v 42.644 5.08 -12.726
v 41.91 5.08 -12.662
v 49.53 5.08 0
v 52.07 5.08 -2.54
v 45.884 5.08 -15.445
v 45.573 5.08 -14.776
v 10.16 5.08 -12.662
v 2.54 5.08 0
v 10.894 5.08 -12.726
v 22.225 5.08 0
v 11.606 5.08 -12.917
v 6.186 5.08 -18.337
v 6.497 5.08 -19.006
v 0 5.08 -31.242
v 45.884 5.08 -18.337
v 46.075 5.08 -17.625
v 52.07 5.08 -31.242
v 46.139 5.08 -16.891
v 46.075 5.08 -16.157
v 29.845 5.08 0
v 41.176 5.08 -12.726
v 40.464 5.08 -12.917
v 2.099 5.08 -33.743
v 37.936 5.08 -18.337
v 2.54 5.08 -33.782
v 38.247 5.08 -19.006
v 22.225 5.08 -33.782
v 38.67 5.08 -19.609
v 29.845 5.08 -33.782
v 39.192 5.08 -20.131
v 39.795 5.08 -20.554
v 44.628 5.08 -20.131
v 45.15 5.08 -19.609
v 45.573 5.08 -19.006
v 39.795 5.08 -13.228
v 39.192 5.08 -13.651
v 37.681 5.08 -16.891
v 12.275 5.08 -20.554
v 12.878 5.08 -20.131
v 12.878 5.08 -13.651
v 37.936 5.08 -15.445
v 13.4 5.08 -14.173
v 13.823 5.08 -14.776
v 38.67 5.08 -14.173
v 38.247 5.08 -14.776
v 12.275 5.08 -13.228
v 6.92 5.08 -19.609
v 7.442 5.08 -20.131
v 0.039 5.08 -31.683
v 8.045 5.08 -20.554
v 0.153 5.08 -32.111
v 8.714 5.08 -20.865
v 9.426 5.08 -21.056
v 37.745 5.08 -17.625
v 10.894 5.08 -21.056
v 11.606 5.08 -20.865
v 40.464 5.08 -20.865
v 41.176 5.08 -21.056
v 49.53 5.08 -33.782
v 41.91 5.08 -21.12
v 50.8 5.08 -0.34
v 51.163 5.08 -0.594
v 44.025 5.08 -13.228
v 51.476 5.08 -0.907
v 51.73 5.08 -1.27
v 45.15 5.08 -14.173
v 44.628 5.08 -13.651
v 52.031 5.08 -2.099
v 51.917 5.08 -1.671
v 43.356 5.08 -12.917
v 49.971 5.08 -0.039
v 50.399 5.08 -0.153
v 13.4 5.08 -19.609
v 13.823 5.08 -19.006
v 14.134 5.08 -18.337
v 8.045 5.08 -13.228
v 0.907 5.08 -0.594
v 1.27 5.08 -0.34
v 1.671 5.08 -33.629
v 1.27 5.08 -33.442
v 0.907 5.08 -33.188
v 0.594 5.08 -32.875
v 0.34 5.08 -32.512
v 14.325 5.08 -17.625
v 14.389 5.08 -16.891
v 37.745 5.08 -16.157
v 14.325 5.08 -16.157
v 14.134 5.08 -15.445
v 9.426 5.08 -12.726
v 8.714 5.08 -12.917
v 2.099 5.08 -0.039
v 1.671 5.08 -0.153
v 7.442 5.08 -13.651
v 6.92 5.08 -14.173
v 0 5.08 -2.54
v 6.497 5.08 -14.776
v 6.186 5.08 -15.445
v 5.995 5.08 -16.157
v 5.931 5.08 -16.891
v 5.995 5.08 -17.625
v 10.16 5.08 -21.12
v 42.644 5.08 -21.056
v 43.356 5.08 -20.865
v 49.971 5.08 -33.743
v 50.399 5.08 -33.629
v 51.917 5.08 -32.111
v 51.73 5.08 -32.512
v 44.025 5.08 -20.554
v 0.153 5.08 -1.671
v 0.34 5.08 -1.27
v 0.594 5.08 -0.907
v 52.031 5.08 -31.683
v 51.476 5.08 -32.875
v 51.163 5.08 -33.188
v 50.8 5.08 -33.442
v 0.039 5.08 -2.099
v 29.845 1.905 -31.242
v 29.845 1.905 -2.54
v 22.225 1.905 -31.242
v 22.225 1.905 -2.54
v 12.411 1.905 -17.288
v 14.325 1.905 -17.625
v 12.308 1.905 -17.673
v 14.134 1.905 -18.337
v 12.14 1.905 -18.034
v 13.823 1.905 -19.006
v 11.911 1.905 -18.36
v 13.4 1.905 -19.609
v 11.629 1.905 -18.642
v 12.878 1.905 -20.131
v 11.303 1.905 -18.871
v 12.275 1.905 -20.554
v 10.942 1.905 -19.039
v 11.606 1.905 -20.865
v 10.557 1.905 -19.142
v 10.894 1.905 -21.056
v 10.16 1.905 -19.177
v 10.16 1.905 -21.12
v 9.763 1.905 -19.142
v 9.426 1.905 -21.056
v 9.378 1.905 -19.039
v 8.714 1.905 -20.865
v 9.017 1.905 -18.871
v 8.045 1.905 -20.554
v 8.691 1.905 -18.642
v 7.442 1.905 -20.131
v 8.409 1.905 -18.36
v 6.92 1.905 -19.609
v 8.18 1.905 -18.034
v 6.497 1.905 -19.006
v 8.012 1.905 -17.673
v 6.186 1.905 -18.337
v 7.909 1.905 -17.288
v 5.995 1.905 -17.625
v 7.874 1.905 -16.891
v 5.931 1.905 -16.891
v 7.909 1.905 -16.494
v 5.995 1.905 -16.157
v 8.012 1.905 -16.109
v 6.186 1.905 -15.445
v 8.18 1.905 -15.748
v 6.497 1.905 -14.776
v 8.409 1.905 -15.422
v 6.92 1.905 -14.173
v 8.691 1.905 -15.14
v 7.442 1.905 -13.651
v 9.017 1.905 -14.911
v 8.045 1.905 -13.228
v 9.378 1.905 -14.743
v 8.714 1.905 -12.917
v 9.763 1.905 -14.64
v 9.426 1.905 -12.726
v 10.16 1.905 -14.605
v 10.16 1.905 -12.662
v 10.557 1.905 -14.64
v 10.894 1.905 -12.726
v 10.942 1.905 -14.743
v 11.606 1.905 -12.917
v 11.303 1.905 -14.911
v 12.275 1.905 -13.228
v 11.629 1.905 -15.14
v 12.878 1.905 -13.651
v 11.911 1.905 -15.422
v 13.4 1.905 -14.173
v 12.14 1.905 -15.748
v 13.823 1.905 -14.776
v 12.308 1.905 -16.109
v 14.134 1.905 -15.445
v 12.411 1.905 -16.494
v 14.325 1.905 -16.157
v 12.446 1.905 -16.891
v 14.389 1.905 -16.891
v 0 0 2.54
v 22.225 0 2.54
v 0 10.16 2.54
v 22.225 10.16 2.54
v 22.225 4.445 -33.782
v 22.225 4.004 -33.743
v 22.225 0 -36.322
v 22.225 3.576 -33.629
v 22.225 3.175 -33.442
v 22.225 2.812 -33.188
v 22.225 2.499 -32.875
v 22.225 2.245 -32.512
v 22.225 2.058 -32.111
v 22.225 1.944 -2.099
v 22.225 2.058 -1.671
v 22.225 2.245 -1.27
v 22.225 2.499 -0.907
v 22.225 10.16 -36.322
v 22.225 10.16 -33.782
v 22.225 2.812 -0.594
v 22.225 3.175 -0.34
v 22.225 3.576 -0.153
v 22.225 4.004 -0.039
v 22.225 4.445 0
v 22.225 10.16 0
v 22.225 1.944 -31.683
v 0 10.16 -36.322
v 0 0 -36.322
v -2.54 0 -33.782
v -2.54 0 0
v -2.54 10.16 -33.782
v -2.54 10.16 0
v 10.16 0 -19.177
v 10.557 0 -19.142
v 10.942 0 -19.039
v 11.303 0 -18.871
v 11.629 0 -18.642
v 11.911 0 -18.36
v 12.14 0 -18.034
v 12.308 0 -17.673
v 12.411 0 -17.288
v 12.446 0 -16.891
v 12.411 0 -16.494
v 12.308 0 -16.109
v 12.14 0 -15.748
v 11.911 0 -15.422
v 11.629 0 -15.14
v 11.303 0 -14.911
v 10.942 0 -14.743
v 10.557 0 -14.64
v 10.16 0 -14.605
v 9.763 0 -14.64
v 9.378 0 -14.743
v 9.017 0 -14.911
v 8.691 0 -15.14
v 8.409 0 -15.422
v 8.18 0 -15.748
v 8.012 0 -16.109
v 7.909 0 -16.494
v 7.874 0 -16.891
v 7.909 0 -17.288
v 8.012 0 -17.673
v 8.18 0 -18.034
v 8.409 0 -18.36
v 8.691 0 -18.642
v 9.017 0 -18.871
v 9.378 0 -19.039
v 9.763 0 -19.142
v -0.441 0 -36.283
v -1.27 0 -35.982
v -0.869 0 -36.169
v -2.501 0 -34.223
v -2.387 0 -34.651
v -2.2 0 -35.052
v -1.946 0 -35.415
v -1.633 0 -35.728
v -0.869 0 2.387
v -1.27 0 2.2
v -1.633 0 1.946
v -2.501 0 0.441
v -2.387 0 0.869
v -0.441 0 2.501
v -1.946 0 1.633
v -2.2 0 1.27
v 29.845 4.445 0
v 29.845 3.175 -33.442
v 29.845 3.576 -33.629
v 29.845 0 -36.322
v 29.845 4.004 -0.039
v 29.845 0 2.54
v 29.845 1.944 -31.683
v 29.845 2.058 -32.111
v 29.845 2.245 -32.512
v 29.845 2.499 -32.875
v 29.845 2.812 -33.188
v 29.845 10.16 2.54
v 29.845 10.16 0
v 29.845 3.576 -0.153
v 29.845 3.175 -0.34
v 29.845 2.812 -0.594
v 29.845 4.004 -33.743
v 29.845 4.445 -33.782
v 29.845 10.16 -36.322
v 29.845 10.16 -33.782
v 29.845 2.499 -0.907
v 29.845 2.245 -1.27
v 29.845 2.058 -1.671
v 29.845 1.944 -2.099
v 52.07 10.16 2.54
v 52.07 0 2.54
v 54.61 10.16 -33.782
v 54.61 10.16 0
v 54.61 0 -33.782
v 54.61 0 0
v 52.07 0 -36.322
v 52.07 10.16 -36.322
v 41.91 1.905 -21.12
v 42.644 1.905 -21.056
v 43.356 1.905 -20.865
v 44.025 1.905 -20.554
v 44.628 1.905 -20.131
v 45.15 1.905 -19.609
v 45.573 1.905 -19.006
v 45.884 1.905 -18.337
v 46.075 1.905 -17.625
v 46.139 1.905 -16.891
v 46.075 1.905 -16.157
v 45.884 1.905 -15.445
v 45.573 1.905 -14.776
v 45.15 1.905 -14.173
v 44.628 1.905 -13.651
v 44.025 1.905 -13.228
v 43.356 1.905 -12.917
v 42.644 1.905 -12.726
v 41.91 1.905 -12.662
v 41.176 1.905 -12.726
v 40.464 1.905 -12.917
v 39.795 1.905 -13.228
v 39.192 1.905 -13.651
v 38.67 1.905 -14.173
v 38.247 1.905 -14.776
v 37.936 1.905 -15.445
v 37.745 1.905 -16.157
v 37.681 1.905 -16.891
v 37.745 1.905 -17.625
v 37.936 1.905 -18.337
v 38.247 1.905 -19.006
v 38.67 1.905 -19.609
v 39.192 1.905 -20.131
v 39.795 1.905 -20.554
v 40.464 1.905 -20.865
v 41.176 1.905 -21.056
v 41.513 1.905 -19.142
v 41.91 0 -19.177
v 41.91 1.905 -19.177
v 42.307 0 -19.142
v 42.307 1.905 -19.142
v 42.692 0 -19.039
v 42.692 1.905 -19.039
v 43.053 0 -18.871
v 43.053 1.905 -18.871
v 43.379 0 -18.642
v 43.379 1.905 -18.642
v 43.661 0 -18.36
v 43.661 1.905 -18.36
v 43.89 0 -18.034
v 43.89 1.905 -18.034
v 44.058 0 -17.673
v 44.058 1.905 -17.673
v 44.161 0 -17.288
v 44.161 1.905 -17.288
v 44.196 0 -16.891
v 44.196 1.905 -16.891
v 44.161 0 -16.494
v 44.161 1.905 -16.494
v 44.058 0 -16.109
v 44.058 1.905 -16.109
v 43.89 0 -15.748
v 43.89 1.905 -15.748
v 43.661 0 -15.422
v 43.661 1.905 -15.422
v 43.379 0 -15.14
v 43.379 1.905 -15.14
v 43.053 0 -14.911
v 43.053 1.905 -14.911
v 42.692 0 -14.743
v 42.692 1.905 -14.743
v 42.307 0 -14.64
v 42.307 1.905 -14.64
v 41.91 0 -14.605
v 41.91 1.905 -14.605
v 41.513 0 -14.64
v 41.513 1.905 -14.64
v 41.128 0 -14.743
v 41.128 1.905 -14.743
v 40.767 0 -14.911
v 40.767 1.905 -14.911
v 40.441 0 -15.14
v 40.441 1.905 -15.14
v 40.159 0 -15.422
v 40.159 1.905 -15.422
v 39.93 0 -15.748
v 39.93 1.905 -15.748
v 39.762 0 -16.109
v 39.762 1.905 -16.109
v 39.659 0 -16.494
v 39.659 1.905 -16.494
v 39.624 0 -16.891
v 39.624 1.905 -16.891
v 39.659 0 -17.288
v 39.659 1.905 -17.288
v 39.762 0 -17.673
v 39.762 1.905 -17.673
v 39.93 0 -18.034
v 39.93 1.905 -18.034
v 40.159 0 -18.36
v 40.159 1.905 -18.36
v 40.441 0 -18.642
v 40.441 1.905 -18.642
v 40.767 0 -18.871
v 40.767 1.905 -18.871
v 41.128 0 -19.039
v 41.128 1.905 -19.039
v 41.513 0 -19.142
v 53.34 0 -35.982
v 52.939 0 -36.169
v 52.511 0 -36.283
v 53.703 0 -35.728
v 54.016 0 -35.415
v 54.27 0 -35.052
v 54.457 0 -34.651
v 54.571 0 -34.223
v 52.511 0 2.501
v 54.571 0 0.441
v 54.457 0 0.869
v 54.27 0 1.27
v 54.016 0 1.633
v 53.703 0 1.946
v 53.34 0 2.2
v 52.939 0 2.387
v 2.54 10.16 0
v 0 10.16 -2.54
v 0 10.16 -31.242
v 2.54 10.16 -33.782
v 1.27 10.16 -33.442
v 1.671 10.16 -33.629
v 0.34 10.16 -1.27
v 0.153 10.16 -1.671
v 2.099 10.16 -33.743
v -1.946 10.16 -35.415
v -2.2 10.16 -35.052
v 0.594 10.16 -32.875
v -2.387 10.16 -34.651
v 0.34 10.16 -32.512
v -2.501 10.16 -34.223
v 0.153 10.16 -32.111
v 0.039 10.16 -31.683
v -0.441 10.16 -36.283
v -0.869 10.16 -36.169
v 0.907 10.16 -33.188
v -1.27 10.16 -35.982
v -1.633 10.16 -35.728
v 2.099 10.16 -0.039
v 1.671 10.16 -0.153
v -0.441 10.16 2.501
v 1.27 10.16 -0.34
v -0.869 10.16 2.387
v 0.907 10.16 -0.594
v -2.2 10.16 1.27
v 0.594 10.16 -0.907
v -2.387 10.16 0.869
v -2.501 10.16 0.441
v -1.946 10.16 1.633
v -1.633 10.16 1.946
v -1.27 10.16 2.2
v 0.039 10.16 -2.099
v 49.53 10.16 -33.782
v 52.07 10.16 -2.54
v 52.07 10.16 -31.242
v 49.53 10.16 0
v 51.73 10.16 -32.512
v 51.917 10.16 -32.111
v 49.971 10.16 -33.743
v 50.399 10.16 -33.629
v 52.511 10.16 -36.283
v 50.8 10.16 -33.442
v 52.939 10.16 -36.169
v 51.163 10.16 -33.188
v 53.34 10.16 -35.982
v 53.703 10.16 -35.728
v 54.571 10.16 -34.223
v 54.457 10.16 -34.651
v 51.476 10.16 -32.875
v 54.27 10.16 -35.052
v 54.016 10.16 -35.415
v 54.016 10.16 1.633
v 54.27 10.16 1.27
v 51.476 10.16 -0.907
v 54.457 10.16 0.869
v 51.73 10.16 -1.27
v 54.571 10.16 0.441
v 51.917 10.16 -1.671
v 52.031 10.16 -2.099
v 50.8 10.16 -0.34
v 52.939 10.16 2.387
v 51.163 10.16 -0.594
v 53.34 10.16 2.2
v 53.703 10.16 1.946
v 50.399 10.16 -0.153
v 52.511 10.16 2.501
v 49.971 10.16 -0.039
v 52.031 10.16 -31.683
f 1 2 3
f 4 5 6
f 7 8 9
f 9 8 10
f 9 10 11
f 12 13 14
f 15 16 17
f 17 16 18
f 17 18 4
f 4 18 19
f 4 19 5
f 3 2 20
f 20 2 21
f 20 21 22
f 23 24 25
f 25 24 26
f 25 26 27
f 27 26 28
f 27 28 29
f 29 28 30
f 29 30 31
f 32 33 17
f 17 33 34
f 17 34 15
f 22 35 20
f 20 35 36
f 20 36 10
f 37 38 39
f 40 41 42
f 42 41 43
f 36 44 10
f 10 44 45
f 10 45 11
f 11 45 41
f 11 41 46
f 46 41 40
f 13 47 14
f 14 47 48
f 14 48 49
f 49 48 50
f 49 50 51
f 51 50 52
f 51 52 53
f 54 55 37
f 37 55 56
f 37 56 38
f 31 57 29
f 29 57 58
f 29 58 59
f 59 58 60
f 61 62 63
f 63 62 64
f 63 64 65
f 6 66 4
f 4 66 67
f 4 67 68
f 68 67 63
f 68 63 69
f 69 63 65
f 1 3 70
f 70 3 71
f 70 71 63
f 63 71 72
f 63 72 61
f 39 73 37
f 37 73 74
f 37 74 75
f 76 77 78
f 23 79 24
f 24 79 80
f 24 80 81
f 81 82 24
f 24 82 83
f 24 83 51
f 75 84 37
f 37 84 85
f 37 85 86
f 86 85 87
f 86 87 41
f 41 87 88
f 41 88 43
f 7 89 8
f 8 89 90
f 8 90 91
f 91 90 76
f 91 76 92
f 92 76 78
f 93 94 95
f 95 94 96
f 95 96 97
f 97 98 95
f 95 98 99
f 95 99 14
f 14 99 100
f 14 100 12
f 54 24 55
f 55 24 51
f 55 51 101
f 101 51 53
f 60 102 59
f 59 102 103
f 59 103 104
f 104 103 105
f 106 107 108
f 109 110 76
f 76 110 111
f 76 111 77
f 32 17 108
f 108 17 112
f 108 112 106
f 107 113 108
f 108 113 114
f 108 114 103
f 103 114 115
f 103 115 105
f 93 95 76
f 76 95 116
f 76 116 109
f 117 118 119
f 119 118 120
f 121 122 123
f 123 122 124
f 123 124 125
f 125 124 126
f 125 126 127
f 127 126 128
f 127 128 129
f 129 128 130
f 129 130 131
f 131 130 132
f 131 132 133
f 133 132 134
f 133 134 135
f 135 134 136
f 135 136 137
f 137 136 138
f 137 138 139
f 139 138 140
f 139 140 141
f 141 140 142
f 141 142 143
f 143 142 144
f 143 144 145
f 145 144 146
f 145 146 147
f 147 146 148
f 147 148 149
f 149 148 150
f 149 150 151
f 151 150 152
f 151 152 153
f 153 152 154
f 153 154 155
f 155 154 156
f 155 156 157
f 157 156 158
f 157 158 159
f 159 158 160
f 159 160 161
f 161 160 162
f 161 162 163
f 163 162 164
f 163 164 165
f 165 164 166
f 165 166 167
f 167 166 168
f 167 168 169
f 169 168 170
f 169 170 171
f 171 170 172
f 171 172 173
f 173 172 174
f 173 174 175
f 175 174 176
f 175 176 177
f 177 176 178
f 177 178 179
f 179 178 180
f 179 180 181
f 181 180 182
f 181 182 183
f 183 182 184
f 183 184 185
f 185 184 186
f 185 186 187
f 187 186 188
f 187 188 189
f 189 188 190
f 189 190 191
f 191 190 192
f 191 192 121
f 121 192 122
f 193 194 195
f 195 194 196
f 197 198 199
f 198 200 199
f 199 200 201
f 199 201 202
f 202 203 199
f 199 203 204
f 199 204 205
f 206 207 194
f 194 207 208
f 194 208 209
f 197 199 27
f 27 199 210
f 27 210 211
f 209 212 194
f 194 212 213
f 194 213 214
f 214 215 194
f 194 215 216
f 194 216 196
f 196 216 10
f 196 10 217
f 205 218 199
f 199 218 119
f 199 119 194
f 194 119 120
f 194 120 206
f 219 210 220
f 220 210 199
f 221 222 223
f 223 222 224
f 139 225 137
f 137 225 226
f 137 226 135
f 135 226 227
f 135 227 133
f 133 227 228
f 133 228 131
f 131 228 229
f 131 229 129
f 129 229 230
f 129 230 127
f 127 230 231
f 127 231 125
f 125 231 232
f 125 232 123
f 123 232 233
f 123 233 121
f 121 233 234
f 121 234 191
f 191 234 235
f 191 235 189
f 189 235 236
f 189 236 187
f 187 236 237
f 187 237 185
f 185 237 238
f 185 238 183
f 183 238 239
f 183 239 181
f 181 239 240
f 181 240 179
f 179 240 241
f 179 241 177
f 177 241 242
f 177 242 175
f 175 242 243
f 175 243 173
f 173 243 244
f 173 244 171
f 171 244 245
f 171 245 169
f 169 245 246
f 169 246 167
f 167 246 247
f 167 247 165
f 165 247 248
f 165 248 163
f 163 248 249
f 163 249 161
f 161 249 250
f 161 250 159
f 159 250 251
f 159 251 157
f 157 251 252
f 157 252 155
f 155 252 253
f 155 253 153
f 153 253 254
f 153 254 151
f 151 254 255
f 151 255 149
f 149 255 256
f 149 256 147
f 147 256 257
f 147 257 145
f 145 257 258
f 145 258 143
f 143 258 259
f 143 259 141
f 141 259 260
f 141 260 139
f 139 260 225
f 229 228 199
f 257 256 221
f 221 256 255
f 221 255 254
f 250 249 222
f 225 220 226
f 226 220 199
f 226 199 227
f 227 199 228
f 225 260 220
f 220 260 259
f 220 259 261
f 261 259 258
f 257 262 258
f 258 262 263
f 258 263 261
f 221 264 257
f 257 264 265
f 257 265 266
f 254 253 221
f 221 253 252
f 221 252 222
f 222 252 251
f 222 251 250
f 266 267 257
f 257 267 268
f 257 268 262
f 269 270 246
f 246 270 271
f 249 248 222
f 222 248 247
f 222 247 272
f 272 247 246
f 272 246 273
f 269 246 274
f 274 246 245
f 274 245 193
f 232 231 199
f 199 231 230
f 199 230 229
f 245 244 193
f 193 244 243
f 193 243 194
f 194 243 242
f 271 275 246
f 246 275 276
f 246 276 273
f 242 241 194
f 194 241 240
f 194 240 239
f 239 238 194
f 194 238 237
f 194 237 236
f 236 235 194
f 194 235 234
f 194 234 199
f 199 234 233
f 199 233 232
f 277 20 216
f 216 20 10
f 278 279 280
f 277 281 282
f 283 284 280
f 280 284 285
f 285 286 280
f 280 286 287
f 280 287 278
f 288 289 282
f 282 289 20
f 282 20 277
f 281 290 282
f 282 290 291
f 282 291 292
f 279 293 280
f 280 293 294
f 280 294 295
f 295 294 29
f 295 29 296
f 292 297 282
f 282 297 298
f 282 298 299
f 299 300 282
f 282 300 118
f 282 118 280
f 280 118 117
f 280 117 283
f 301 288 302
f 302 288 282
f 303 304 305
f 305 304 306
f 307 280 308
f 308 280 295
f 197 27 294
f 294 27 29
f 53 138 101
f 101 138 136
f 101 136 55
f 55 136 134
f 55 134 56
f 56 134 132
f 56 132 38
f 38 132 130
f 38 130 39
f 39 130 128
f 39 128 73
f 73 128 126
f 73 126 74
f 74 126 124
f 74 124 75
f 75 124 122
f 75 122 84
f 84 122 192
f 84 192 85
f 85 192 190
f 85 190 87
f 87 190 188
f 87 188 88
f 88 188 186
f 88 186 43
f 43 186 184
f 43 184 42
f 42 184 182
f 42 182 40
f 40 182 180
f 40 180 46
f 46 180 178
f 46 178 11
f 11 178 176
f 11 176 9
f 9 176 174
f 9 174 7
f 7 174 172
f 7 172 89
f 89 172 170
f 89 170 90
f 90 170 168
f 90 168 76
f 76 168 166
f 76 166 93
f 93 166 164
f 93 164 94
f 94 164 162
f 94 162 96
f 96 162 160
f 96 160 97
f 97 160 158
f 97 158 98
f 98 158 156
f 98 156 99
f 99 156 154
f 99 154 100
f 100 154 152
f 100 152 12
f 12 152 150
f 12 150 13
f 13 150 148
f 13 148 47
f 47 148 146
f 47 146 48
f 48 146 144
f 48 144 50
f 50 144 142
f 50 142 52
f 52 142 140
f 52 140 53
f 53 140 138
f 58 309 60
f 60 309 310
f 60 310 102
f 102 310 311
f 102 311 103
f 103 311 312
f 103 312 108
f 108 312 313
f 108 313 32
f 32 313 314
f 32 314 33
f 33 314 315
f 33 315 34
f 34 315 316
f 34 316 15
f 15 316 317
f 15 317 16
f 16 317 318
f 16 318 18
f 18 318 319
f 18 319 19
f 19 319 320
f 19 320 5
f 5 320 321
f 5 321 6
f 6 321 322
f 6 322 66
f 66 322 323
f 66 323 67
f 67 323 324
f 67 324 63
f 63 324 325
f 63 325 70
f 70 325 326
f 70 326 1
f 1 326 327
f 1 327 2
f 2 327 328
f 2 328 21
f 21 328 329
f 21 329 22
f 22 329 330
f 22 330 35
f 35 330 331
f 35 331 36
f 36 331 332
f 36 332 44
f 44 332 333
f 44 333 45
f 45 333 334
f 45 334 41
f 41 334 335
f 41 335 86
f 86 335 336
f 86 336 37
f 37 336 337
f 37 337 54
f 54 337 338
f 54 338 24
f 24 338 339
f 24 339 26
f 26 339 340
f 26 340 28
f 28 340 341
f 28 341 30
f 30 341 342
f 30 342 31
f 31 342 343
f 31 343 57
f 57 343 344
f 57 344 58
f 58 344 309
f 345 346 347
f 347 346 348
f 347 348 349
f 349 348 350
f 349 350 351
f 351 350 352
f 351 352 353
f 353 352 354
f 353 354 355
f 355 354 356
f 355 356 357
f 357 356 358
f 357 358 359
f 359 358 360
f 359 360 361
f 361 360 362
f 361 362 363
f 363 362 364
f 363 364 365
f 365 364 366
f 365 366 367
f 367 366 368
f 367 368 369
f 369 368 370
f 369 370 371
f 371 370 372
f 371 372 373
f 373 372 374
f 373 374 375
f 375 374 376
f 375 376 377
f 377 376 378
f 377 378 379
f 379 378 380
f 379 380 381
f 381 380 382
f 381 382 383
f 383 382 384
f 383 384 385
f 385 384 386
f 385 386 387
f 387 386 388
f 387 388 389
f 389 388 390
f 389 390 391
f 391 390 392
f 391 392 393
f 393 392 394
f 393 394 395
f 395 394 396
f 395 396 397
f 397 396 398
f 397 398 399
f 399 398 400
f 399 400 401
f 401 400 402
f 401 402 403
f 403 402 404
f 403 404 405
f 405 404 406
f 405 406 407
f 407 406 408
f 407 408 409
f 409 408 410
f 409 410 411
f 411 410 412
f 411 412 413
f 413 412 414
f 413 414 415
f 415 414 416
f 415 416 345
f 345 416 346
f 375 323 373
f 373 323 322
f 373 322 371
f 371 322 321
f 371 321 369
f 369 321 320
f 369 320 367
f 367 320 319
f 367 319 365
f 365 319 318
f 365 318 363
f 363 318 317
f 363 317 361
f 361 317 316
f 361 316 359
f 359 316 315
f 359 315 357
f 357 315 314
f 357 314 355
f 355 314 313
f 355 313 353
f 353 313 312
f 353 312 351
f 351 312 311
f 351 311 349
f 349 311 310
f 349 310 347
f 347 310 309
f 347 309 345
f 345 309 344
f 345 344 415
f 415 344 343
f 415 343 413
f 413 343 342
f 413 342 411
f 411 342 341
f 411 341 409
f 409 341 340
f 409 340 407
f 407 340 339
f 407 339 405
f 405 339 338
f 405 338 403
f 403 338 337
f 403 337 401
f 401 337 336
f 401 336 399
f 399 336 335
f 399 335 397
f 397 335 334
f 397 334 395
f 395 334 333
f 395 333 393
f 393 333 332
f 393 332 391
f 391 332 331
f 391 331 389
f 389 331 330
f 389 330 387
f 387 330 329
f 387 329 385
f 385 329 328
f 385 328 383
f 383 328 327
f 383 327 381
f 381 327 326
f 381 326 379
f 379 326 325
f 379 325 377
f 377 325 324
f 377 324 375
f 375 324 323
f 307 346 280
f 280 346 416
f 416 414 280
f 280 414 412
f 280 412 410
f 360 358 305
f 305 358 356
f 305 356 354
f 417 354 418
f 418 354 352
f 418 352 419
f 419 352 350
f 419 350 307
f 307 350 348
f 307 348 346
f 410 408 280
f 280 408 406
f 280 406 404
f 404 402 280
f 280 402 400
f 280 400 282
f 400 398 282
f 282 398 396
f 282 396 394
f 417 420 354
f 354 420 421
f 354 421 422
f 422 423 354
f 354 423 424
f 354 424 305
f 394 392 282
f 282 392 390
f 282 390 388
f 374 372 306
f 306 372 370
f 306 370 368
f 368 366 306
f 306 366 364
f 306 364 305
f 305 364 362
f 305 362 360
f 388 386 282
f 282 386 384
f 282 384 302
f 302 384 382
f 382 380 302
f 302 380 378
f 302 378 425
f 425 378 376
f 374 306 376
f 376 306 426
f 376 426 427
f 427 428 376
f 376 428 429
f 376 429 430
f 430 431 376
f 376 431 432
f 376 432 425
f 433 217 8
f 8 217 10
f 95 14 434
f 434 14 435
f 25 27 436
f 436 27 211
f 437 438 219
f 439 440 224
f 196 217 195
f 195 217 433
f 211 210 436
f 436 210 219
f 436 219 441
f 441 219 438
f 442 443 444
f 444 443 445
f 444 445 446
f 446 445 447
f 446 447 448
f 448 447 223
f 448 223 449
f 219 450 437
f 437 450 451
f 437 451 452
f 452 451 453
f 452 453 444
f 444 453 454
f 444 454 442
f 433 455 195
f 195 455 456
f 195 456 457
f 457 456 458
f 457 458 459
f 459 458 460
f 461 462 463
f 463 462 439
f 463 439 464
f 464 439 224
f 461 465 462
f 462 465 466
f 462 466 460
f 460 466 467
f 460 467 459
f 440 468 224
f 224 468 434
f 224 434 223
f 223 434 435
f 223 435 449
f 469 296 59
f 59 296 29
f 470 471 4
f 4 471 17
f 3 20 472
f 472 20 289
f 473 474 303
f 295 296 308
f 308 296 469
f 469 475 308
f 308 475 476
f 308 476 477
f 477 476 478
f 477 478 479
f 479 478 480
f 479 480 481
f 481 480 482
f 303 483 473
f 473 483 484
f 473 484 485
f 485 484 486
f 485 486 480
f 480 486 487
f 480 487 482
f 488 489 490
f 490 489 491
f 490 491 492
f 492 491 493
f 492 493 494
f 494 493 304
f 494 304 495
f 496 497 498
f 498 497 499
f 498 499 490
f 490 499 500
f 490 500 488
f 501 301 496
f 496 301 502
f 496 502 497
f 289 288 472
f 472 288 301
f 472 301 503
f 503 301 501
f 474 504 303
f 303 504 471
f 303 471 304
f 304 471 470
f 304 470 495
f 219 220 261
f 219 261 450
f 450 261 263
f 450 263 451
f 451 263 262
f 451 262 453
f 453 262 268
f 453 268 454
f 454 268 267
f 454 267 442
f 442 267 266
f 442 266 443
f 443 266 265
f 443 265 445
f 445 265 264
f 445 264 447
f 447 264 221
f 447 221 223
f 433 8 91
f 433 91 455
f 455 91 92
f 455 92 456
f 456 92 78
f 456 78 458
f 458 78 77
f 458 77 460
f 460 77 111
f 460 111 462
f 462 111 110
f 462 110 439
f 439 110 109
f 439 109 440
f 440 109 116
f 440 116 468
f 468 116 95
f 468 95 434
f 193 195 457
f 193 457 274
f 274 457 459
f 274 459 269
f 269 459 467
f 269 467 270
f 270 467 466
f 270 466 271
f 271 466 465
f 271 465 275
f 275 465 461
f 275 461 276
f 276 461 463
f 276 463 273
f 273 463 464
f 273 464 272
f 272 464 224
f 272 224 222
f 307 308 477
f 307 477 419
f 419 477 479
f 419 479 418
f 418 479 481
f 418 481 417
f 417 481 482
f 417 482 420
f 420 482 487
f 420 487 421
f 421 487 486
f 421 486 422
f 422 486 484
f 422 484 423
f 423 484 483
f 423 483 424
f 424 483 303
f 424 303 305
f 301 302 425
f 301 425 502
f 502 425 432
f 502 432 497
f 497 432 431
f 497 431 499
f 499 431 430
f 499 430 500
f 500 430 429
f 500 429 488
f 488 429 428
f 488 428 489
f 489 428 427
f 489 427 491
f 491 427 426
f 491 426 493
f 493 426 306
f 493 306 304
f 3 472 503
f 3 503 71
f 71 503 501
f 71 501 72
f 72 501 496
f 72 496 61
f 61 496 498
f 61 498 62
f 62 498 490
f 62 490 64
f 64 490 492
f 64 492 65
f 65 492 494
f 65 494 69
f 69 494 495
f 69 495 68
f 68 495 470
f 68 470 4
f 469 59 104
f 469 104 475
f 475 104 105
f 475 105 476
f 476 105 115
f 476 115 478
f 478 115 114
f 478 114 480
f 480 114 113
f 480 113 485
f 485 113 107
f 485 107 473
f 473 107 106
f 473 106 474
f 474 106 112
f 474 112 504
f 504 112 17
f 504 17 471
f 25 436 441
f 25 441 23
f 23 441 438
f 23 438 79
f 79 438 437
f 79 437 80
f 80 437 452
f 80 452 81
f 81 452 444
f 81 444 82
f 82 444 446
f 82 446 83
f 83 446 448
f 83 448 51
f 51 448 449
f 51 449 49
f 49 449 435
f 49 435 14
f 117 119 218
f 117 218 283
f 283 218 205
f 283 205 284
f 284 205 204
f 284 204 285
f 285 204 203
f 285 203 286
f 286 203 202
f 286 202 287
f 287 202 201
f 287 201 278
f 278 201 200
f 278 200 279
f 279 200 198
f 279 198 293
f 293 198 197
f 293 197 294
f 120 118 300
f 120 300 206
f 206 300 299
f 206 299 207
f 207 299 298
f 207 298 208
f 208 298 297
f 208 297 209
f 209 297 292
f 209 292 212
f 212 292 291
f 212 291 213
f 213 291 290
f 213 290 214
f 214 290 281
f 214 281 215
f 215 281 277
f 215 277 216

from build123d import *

# Parameters (mm, degrees)
SKETCH1_W           = 22.225
SKETCH1_H           = 33.782
SKETCH1_R           = 4.2291
SKETCH1_R_2         = 2.286
BOSS_EXTRUDE1_DEPTH = 1.905
BOSS_EXTRUDE2_START = 1.905
SKETCH1_3_W         = 22.225
SKETCH1_3_H         = 33.782
SKETCH1_3_R         = 4.2291
SKETCH1_3_W_2       = 7.62
BOSS_EXTRUDE2_DEPTH = 3.175
BOSS_EXTRUDE3_START = 5.08
BOSS_EXTRUDE3_DEPTH = 5.08
FILLET1_R           = 2.54
FILLET2_R           = 2.54


with BuildPart() as part:
    # Sketch1 → Boss-Extrude1 (new body)
    with BuildSketch(Plane(origin=(0, 0, 0), x_dir=(1, 0, 0), z_dir=(0, 1, 0))):
        Polygon((22.225, 36.322), (-2.54, 36.322), (-2.54, -2.54), (22.225, -2.54), (22.225, 0), (0, 0), (0, 33.782), (22.225, 33.782), align=None)
        with Locations((11.1125, 16.891)):
            Rectangle(SKETCH1_W, SKETCH1_H)
        with Locations((10.16, 16.891)):
            Circle(SKETCH1_R, mode=Mode.SUBTRACT)
        with Locations((10.16, 16.891)):
            Circle(SKETCH1_R)
        with Locations((10.16, 16.891)):
            Circle(SKETCH1_R_2, mode=Mode.SUBTRACT)
        with Locations((40.9575, 16.891)):
            Rectangle(SKETCH1_W, SKETCH1_H)
        with Locations((41.91, 16.891)):
            Circle(SKETCH1_R, mode=Mode.SUBTRACT)
        with Locations((41.91, 16.891)):
            Circle(SKETCH1_R)
        with Locations((41.91, 16.891)):
            Circle(SKETCH1_R_2, mode=Mode.SUBTRACT)
        Polygon((54.61, 36.322), (29.845, 36.322), (29.845, 33.782), (52.07, 33.782), (52.07, 0), (29.845, 0), (29.845, -2.54), (54.61, -2.54), align=None)
    extrude(amount=BOSS_EXTRUDE1_DEPTH)

    # Sketch1_3 → Boss-Extrude2 (add)
    with BuildSketch(Plane(origin=(0, 0, 0), x_dir=(1, 0, 0), z_dir=(0, 1, 0)).offset(BOSS_EXTRUDE2_START)):
        with Locations((11.1125, 16.891)):
            Rectangle(SKETCH1_3_W, SKETCH1_3_H)
        with Locations((10.16, 16.891)):
            Circle(SKETCH1_3_R, mode=Mode.SUBTRACT)
        with Locations((40.9575, 16.891)):
            Rectangle(SKETCH1_3_W, SKETCH1_3_H)
        with Locations((41.91, 16.891)):
            Circle(SKETCH1_3_R, mode=Mode.SUBTRACT)
        with Locations((26.035, 16.891)):
            Rectangle(SKETCH1_3_W_2, SKETCH1_3_H)
        Polygon((22.225, 36.322), (-2.54, 36.322), (-2.54, -2.54), (22.225, -2.54), (22.225, 0), (0, 0), (0, 33.782), (22.225, 33.782), align=None)
        Polygon((54.61, 36.322), (29.845, 36.322), (29.845, 33.782), (52.07, 33.782), (52.07, 0), (29.845, 0), (29.845, -2.54), (54.61, -2.54), align=None)
    extrude(amount=BOSS_EXTRUDE2_DEPTH)

    # Sketch1_4 → Boss-Extrude3 (add)
    with BuildSketch(Plane(origin=(0, 0, 0), x_dir=(1, 0, 0), z_dir=(0, 1, 0)).offset(BOSS_EXTRUDE3_START)):
        Polygon((22.225, 36.322), (-2.54, 36.322), (-2.54, -2.54), (22.225, -2.54), (22.225, 0), (0, 0), (0, 33.782), (22.225, 33.782), align=None)
        Polygon((54.61, 36.322), (29.845, 36.322), (29.845, 33.782), (52.07, 33.782), (52.07, 0), (29.845, 0), (29.845, -2.54), (54.61, -2.54), align=None)
    extrude(amount=BOSS_EXTRUDE3_DEPTH)

    # Fillet1
    fillet1_edges = [part.edges().sort_by_distance(p)[0] for p in [
        (-2.54, 5.08, 2.54),
        (-2.54, 5.08, -36.322),
        (54.61, 5.08, 2.54),
        (54.61, 5.08, -36.322),
        (0, 7.62, 0),
        (0, 7.62, -33.782),
        (52.07, 7.62, -33.782),
        (52.07, 7.62, 0),
    ]]
    fillet(fillet1_edges, radius=FILLET1_R)

    # Fillet2
    fillet2_edges = [part.edges().sort_by_distance(p)[0] for p in [
        (26.035, 1.905, -33.782),
        (26.035, 1.905, 0),
    ]]
    fillet(fillet2_edges, radius=FILLET2_R)


solid = part.part
